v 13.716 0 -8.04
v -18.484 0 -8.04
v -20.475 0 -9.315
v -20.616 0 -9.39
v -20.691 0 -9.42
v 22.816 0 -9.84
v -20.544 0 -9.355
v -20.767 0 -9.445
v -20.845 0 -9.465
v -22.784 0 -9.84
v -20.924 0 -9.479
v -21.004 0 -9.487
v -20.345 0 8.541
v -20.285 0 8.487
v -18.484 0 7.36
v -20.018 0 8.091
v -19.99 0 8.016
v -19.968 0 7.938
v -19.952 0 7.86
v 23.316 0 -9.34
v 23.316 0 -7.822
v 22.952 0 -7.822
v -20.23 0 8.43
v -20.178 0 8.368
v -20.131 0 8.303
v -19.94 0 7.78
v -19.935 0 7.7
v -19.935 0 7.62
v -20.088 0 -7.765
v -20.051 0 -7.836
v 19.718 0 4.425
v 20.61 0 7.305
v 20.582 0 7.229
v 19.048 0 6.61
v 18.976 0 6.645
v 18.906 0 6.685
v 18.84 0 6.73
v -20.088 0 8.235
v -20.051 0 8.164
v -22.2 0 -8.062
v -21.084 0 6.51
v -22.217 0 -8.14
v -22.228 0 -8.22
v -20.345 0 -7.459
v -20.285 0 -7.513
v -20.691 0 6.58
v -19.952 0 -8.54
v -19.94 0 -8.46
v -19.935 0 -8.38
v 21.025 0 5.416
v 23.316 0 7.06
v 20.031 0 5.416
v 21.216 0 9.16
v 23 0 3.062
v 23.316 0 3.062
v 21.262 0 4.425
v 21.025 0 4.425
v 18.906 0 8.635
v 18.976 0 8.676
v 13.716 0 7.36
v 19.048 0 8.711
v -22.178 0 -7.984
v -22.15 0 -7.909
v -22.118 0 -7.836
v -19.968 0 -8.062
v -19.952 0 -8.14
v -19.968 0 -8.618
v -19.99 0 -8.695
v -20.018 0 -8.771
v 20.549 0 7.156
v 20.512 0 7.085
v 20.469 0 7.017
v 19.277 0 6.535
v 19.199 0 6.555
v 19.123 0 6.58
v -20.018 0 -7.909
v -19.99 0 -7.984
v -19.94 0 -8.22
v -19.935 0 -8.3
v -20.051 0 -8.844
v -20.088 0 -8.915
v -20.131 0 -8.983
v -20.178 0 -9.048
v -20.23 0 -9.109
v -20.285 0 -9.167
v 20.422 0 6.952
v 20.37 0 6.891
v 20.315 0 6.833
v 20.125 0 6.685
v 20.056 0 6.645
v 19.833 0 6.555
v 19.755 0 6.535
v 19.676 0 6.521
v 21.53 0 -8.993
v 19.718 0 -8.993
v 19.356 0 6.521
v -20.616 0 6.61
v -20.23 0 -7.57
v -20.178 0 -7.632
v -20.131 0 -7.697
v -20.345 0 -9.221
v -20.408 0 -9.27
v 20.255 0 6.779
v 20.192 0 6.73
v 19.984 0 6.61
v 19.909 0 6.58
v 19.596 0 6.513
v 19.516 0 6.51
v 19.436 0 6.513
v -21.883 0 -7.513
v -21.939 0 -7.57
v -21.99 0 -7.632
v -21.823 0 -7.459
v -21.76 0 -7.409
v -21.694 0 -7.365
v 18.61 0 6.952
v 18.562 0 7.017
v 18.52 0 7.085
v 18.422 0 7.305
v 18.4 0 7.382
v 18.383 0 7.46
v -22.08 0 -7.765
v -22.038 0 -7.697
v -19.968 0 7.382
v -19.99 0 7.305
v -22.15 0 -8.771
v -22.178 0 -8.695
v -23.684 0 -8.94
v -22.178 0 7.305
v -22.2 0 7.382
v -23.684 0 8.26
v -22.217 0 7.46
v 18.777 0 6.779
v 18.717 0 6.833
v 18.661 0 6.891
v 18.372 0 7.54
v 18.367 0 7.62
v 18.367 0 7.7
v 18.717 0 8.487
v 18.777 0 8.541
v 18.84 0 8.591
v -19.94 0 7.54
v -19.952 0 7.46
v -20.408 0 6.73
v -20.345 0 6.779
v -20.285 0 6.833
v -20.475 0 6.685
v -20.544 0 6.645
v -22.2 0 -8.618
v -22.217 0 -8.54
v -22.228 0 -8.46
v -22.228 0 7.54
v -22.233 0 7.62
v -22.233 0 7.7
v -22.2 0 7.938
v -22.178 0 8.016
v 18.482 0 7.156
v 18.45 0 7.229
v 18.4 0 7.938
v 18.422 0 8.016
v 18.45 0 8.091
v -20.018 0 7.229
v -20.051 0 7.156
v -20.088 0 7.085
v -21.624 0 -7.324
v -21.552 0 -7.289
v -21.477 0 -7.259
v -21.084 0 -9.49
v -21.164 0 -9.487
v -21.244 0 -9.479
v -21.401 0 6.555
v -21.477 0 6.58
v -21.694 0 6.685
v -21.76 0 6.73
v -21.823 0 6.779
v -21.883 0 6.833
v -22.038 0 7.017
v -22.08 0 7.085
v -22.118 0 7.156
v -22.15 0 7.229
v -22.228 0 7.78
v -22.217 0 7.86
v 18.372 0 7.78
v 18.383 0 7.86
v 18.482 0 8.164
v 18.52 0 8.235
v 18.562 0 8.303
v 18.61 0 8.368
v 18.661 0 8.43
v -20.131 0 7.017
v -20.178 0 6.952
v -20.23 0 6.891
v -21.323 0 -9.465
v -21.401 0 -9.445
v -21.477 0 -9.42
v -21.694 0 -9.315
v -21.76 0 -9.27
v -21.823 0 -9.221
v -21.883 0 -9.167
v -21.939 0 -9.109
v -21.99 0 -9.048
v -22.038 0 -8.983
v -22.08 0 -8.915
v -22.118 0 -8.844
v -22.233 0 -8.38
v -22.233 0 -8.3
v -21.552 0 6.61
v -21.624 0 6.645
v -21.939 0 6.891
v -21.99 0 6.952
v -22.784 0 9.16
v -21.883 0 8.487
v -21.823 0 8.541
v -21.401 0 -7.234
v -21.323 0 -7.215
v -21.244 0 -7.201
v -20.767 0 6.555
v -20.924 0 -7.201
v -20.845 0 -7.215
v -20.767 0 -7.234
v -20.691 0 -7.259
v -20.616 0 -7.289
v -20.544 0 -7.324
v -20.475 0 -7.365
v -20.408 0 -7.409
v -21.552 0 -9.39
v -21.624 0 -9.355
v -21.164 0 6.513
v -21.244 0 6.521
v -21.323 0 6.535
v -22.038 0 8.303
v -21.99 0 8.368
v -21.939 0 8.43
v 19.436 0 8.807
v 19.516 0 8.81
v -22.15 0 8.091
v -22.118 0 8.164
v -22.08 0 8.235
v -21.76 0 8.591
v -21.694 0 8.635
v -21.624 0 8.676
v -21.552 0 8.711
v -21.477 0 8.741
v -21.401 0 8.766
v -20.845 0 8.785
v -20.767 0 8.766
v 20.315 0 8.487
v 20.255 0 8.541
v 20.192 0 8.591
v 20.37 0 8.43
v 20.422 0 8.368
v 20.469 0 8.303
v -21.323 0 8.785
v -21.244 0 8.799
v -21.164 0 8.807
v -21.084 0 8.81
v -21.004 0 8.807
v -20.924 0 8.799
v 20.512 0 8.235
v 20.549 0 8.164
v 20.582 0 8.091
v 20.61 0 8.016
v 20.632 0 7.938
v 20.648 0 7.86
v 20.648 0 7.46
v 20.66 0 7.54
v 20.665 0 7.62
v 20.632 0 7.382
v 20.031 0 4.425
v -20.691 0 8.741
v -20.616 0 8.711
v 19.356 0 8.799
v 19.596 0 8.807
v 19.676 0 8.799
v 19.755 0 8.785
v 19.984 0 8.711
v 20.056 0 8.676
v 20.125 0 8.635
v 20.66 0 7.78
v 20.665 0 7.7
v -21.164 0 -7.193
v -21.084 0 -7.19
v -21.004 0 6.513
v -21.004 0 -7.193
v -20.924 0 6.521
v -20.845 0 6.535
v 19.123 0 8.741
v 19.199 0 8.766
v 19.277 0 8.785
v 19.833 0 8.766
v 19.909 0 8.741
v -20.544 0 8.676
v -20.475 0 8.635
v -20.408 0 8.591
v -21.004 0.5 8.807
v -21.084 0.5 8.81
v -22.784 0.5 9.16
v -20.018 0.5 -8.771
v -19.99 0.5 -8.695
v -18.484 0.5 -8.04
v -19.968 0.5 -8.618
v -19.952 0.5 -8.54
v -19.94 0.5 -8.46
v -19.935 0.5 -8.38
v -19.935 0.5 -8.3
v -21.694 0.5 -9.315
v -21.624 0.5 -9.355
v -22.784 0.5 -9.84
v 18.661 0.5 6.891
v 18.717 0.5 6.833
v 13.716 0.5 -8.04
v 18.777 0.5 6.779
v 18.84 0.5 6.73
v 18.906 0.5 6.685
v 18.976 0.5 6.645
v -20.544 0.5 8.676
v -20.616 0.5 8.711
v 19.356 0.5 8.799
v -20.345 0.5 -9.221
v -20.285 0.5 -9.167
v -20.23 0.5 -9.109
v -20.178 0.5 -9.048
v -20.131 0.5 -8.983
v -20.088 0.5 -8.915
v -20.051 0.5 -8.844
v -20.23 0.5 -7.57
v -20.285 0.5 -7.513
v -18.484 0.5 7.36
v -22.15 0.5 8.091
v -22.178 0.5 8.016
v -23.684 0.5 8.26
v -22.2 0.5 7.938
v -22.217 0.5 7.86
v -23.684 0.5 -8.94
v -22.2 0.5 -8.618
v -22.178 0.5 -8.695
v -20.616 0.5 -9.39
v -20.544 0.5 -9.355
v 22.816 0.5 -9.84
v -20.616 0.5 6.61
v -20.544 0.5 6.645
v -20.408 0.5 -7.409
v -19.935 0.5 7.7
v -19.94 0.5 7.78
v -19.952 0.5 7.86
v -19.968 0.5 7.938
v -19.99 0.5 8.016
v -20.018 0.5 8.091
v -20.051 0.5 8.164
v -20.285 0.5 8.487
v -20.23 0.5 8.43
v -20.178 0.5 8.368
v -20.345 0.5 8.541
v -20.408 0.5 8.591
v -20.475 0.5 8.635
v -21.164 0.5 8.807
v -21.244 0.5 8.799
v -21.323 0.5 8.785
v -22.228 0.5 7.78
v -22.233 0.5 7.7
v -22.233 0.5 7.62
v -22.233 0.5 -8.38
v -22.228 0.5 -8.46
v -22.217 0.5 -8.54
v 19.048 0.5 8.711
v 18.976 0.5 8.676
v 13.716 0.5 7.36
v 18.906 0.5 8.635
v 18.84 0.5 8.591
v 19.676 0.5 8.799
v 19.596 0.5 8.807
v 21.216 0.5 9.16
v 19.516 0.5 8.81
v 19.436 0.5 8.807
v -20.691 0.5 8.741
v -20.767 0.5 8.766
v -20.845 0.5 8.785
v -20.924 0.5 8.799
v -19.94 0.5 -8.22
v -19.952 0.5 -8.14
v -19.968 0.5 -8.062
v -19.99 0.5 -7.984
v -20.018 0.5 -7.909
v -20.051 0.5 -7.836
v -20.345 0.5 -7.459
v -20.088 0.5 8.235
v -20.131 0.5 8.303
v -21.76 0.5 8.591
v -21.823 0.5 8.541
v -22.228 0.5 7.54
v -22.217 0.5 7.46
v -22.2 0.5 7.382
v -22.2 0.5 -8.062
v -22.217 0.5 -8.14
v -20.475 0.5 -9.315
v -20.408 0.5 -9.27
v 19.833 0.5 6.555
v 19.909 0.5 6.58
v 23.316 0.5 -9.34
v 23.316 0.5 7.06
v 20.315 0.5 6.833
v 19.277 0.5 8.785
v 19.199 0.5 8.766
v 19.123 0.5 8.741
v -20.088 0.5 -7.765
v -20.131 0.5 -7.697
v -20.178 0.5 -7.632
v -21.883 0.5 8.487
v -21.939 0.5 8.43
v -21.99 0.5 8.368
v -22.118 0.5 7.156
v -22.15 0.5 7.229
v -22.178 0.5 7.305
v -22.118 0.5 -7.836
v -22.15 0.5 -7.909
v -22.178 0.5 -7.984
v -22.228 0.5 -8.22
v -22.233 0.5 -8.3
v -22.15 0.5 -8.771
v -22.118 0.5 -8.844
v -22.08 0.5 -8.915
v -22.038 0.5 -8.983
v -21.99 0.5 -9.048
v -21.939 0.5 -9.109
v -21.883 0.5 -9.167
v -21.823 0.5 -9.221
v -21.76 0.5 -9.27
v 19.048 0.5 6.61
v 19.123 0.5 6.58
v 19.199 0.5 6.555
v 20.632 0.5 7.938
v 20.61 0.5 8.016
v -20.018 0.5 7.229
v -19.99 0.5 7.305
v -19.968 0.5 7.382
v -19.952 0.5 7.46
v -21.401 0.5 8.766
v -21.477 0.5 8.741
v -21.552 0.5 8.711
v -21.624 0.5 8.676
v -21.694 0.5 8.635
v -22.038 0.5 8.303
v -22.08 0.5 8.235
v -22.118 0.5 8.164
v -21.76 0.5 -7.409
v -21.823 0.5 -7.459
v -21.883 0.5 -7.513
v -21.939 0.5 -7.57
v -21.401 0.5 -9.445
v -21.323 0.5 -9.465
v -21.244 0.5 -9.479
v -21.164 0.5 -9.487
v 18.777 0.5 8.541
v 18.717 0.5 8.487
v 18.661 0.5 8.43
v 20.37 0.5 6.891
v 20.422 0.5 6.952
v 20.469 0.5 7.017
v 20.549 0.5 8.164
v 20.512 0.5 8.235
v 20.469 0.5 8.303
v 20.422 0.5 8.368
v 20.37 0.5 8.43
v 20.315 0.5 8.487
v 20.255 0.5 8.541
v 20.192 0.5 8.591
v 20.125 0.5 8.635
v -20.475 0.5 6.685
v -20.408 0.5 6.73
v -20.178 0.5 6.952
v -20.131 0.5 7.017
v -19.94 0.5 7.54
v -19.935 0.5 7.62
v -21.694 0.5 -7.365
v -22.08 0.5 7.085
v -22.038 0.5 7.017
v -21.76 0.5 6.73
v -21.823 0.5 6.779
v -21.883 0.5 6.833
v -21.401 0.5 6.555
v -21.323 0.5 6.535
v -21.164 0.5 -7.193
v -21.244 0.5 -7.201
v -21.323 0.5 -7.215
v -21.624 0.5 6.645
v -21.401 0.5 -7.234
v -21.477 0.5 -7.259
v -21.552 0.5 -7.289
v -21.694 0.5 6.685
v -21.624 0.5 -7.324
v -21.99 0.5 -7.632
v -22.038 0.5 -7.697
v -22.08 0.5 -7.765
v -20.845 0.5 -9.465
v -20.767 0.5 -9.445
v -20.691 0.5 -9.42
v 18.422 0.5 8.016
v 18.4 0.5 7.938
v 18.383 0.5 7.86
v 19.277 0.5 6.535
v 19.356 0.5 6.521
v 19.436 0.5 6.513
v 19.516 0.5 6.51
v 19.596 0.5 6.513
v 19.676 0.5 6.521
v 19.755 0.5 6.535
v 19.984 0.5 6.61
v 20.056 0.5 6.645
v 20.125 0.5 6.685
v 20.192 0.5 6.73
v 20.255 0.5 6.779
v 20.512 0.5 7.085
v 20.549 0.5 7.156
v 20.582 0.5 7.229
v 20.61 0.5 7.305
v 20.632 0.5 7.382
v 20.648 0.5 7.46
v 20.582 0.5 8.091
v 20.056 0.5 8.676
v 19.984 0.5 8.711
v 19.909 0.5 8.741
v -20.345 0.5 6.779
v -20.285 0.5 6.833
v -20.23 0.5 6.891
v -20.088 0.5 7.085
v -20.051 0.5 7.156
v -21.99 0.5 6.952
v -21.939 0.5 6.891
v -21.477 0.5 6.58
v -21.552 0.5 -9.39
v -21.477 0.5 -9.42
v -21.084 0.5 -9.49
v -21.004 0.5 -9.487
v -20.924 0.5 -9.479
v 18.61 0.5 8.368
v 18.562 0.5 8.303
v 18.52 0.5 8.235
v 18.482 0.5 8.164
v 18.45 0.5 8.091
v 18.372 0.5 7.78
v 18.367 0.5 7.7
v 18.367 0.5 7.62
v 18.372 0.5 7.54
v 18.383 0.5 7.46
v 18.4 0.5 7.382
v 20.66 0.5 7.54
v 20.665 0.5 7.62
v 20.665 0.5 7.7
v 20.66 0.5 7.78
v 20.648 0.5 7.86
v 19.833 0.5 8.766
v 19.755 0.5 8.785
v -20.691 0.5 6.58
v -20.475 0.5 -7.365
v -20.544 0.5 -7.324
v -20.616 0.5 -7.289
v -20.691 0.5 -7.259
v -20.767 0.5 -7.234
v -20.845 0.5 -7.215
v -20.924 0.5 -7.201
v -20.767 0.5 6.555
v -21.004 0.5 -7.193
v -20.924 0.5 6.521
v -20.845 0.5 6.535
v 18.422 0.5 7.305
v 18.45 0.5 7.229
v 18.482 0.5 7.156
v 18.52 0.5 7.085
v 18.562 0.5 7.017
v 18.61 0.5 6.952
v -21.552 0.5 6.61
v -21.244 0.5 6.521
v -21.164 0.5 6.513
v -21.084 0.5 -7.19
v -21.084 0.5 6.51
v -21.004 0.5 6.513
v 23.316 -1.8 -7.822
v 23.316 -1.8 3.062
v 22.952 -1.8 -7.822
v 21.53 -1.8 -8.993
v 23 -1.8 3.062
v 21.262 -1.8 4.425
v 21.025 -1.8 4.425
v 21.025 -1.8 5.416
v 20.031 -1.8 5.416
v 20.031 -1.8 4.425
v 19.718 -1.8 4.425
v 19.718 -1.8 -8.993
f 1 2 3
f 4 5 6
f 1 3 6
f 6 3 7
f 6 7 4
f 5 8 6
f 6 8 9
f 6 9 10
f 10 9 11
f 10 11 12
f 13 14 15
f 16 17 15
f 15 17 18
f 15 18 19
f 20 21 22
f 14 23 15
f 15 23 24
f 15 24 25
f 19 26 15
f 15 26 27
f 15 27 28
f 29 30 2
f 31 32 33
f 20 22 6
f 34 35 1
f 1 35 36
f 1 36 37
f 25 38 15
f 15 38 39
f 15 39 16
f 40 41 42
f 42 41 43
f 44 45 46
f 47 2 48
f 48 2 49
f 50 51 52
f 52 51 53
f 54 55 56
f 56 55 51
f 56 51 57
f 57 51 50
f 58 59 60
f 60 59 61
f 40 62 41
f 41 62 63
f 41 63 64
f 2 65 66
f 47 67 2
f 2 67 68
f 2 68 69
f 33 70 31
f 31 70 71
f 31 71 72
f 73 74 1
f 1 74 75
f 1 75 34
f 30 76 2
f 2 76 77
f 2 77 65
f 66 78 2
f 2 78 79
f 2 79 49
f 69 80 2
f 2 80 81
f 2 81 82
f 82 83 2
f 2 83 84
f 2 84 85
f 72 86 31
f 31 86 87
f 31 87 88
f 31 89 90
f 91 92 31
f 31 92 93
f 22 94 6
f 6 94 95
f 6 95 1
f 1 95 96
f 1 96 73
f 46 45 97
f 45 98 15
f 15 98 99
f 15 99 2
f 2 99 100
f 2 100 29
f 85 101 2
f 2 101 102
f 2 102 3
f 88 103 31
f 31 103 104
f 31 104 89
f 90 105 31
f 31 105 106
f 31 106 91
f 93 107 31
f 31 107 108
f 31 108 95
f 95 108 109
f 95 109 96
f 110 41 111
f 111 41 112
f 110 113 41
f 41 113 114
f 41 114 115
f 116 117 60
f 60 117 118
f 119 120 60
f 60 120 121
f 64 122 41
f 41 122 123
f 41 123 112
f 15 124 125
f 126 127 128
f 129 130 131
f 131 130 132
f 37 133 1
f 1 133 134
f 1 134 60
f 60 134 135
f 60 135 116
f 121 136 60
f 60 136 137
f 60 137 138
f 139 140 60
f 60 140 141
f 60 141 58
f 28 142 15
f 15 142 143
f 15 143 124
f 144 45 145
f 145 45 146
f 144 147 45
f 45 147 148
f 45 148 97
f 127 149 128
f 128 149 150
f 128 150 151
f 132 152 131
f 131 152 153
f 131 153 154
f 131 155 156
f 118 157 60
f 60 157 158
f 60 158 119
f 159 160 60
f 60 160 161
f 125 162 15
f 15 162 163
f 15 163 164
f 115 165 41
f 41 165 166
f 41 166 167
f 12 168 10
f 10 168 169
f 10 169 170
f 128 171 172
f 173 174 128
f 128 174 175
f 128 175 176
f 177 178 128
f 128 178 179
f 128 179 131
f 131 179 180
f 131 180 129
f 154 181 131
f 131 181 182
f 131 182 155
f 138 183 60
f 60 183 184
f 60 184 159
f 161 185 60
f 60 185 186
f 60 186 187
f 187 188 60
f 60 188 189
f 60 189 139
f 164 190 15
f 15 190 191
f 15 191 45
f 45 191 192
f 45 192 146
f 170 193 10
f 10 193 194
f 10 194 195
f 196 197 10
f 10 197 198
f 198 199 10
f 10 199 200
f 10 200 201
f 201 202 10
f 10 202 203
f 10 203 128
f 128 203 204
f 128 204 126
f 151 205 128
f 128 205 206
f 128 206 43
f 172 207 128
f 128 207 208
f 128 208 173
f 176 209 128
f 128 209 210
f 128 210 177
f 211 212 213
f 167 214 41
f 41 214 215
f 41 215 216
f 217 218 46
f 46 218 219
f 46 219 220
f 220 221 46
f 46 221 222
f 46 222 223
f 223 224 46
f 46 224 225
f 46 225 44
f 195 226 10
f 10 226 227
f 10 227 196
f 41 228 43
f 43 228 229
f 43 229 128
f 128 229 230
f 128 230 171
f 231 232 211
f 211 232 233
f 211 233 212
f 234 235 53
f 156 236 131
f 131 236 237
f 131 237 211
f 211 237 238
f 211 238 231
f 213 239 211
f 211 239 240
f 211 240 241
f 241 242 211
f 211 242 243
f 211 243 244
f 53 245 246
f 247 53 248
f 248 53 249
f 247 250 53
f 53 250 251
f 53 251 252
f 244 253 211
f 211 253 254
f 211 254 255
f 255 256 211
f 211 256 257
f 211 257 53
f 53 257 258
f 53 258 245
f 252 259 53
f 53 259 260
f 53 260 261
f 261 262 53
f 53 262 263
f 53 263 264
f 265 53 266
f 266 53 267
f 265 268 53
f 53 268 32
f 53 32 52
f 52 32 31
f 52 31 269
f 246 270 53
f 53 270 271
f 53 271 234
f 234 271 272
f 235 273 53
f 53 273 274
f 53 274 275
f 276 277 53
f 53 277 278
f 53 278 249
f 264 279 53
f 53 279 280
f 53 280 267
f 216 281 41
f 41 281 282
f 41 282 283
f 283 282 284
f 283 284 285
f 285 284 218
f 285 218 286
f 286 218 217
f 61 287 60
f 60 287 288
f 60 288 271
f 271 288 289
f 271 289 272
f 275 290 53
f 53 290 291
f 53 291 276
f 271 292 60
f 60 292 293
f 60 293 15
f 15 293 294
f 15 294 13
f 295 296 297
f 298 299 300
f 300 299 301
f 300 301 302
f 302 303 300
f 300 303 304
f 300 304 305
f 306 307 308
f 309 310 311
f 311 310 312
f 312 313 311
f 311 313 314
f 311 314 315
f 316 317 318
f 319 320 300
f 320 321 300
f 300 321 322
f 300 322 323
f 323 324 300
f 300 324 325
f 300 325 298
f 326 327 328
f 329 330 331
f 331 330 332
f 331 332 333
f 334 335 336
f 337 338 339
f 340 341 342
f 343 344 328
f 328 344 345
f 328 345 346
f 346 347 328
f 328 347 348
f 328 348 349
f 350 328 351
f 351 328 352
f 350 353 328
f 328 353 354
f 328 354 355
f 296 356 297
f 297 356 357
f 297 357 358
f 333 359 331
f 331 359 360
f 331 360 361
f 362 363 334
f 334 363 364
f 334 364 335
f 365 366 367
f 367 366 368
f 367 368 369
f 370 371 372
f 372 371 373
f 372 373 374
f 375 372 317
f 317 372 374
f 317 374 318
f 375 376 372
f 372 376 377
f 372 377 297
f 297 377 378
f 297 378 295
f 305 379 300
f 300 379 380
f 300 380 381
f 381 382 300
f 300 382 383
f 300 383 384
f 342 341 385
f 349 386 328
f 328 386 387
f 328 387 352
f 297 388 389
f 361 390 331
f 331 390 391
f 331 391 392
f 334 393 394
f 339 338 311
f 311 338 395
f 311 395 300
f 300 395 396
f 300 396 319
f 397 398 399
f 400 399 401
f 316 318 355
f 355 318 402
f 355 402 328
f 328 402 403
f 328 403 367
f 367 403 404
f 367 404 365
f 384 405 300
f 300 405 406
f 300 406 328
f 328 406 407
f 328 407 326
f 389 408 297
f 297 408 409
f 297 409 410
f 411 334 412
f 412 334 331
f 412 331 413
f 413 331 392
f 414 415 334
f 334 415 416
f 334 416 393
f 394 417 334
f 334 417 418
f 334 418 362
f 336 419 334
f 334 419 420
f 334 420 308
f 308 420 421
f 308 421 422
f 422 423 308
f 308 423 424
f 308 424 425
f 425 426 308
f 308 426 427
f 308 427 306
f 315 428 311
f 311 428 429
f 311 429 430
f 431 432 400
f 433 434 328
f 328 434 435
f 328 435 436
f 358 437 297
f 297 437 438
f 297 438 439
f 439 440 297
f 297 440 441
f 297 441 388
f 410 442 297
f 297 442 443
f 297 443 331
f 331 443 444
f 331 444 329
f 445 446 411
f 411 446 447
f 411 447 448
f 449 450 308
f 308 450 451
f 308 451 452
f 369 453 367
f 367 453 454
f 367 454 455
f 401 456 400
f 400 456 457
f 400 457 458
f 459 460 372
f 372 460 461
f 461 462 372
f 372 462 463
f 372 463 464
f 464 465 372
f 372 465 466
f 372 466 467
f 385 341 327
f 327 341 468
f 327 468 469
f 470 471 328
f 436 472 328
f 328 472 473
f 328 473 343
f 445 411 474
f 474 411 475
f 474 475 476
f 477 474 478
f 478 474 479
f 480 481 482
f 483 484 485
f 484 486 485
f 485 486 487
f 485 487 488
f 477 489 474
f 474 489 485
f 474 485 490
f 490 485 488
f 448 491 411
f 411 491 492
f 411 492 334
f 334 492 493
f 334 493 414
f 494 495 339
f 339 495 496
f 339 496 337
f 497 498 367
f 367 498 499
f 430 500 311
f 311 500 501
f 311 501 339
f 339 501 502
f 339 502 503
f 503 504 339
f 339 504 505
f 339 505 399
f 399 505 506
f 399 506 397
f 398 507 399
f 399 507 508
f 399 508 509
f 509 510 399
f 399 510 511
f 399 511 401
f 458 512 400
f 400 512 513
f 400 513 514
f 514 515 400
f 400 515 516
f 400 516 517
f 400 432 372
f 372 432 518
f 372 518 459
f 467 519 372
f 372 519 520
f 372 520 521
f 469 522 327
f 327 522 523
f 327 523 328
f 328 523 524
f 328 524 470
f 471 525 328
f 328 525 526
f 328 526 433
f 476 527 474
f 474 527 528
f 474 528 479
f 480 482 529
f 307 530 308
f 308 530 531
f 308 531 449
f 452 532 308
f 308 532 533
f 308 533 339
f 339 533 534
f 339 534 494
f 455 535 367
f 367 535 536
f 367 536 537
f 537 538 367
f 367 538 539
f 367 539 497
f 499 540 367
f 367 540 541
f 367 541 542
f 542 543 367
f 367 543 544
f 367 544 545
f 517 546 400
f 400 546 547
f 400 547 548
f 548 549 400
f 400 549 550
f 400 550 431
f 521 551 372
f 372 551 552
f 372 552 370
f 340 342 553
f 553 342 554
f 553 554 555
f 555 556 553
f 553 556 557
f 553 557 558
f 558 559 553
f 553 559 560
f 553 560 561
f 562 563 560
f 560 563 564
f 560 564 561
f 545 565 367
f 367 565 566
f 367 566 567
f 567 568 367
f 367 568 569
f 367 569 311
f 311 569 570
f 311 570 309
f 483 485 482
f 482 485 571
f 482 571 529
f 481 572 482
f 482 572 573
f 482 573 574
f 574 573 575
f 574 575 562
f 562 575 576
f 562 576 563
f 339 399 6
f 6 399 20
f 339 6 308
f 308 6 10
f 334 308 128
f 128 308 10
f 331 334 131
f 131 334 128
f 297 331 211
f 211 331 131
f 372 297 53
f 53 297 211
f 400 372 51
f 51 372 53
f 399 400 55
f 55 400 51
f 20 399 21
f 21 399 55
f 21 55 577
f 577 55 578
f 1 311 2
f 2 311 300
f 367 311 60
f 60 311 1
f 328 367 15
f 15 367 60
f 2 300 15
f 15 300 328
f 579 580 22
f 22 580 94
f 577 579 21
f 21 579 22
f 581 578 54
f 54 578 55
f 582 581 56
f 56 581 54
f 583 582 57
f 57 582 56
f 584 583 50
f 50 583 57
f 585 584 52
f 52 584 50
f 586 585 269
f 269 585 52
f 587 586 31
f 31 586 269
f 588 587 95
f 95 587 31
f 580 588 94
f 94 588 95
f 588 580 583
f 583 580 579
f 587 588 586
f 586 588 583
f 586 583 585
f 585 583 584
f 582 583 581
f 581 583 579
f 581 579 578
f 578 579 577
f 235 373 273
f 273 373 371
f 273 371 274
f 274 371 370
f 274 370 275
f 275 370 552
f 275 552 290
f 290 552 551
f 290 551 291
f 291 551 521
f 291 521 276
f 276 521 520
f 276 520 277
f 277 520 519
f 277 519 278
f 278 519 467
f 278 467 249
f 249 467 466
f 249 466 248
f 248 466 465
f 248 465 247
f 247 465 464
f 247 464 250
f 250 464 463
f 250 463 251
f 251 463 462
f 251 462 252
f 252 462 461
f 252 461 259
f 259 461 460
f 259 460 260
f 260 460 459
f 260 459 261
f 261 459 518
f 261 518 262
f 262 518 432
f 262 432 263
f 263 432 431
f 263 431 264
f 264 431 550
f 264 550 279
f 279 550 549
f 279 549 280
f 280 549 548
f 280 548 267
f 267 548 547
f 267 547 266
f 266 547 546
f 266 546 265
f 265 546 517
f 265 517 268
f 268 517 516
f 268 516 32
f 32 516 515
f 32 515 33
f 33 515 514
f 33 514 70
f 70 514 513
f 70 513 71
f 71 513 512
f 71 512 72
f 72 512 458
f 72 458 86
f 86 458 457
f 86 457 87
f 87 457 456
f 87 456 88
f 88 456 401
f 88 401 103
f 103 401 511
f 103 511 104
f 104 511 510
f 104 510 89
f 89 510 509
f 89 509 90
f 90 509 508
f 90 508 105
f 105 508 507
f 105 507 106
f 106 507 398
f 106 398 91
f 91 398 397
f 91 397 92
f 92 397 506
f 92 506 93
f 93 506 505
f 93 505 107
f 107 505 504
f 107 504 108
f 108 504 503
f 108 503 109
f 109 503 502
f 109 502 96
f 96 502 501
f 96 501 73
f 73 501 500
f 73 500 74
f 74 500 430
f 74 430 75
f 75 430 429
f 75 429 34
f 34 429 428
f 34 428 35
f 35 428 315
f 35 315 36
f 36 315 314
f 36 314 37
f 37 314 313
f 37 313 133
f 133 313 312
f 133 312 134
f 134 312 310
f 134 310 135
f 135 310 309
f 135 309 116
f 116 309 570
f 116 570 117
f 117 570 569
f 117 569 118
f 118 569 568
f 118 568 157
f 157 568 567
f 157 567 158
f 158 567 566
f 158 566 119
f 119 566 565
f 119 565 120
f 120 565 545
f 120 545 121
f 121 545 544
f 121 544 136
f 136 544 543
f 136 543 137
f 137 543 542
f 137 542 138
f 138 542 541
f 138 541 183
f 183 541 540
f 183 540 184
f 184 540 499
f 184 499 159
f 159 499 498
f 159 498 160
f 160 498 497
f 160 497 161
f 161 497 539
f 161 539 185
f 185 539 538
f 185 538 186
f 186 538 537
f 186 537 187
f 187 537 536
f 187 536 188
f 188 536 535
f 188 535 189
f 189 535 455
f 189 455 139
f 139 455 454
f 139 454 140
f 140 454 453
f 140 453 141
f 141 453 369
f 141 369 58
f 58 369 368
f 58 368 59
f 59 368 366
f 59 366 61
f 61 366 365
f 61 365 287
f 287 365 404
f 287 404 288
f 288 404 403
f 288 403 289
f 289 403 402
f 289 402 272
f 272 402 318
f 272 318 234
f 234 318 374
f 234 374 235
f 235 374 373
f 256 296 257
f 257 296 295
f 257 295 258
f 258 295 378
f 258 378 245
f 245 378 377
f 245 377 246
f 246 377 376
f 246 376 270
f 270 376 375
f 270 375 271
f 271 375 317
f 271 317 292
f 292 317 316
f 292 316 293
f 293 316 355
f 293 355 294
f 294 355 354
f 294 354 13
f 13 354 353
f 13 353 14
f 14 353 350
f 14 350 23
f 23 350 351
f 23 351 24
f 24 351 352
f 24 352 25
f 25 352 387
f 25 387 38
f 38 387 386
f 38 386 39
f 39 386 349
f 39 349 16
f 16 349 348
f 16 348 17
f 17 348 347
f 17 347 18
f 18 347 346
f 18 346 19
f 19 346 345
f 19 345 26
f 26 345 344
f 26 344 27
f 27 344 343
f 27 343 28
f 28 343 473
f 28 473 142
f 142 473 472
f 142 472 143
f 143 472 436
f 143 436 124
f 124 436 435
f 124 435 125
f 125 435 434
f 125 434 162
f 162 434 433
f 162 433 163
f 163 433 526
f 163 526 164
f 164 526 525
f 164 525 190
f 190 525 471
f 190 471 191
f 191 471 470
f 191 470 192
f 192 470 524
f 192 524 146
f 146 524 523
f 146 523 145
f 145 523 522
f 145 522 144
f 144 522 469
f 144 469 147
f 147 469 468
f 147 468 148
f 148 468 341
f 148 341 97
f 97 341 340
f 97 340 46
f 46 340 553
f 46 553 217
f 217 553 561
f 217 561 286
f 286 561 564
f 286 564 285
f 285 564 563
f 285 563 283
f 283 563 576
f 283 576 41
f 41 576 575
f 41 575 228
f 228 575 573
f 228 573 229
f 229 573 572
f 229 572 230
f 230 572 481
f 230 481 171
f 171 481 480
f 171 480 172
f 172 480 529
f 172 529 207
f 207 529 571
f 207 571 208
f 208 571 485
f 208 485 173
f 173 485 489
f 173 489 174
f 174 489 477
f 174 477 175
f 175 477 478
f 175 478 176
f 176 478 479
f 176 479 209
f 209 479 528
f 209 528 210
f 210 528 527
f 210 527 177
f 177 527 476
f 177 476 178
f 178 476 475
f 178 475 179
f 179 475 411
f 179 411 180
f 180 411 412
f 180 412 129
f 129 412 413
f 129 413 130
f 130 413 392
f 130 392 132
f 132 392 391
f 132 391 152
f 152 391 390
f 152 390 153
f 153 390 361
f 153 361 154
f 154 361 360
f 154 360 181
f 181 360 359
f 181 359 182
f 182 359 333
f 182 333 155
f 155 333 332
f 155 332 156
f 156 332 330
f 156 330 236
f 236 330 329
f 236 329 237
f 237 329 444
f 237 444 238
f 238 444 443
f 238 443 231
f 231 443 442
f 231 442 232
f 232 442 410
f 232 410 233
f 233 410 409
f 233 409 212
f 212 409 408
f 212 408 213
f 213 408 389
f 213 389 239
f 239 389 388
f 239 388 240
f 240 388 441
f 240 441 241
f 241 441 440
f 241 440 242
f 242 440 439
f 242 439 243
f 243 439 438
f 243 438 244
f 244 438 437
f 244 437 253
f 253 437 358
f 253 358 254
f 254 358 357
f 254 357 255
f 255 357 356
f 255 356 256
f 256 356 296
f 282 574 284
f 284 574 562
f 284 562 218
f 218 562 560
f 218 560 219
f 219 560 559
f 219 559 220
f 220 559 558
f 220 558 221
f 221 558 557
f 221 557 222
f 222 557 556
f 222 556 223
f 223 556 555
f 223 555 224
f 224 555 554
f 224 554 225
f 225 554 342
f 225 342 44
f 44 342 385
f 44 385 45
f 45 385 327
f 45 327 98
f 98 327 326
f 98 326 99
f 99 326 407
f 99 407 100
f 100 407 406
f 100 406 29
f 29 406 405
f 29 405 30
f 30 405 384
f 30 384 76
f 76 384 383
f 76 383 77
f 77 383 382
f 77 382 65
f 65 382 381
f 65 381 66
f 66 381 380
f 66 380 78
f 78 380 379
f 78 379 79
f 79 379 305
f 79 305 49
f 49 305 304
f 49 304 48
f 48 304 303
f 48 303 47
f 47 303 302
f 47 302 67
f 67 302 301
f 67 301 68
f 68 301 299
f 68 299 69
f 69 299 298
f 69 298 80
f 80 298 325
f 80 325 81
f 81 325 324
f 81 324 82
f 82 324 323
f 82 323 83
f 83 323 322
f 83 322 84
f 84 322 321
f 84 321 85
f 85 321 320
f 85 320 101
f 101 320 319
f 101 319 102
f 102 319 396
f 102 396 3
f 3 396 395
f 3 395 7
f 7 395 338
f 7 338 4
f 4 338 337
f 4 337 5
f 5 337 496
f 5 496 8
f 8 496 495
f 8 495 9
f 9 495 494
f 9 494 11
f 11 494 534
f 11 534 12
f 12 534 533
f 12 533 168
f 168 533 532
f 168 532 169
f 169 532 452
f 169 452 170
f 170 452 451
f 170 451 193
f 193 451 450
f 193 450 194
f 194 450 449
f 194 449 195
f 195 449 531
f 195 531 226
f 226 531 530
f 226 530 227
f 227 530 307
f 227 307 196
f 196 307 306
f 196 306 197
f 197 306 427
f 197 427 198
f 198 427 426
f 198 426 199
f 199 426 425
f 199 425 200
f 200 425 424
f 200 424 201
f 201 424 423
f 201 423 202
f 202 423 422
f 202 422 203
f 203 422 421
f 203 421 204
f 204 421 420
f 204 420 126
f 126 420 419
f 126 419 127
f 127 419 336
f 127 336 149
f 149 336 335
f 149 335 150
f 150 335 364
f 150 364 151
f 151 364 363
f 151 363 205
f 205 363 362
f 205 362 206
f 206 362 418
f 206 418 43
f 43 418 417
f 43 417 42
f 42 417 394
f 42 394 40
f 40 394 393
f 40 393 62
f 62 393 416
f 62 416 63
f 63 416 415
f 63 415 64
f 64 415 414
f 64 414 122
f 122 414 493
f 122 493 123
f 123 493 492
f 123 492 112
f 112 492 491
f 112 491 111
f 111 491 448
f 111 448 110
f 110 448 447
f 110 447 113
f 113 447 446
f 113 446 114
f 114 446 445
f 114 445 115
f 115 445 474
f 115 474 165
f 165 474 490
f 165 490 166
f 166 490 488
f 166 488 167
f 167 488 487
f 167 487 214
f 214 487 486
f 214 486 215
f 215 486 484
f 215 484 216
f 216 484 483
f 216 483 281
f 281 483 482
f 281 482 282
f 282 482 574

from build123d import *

# Parameters (mm, degrees)
EXTRUDE_1_DEPTH     = 0.5
EXTRUDE_2_DEPTH     = 0.5
SKETCH_3_W          = 32.2
SKETCH_3_H          = 15.4
EXTRUDE_3_DEPTH     = 0.5
EXTRUDE_4_DEPTH     = 1.8
SKETCH_7_R          = 1.15
CUT_EXTRUDE_1_DEPTH = 10


with BuildPart() as part:
    # Эскиз1 → Бобышка-Вытянуть1 (new body)
    with BuildSketch(Plane(origin=(0, 0, 0), x_dir=(1, 0, 0), z_dir=(0, 1, 0))):
        with BuildLine():
            Line((22.815864902, 9.839807024), (-22.784135098, 9.839807024))
            Line((-22.784135098, 9.839807024), (-23.684135098, 8.939807024))
            Line((-23.684135098, 8.939807024), (-23.684135098, -8.260192976))
            Line((-23.684135098, -8.260192976), (-22.784135098, -9.160192976))
            Line((-22.784135098, -9.160192976), (21.215864902, -9.160192976))
            Line((21.215864902, -9.160192976), (23.315864902, -7.060192976))
            Line((23.315864902, -7.060192976), (23.315864902, -3.260192976))
            Line((23.315864902, -3.260192976), (23.029007645, -3.260192976))
            ThreePointArc((23.029007645, -3.260192976), (22.159773793, -4.027024735), (21.188848248, -4.660192976))
            Line((21.188848248, -4.660192976), (21.188848248, -5.660192976))
            Line((21.188848248, -5.660192976), (19.888848248, -5.660192976))
            Line((19.888848248, -5.660192976), (19.888848248, -4.660192976))
            Line((19.888848248, -4.660192976), (17.315864902, -4.660192976))
            Line((17.315864902, -4.660192976), (17.315864902, -8.360192976))
            Line((17.315864902, -8.360192976), (-18.884135098, -8.360192976))
            Line((-18.884135098, -8.360192976), (-18.884135098, -6.660192976))
            Line((-18.884135098, -6.660192976), (-19.684135098, -5.860192976))
            Line((-19.684135098, -5.860192976), (-19.684135098, 6.539807024))
            Line((-19.684135098, 6.539807024), (-18.884135098, 7.339807024))
            Line((-18.884135098, 7.339807024), (-18.884135098, 9.039807024))
            Line((-18.884135098, 9.039807024), (17.315864902, 9.039807024))
            Line((17.315864902, 9.039807024), (17.315864902, 8.539807024))
            ThreePointArc((17.315864902, 8.539807024), (18.329503431, 8.456385882), (19.315864902, 8.208367324))
            Line((19.315864902, 8.208367324), (19.315864902, 9.139807024))
            Line((19.315864902, 9.139807024), (21.530126403, 9.139807024))
            ThreePointArc((21.530126403, 9.139807024), (22.315698775, 8.584938027), (23.029007645, 7.939807024))
            Line((23.029007645, 7.939807024), (23.315864902, 7.939807024))
            Line((23.315864902, 7.939807024), (23.315864902, 9.339807024))
            Line((23.315864902, 9.339807024), (22.815864902, 9.839807024))
        make_face()
        with BuildLine():
            ThreePointArc((18.565864902, -7.660192976), (19.515864902, -8.610192976), (20.465864902, -7.660192976))
            ThreePointArc((20.465864902, -7.660192976), (19.515864902, -6.710192976), (18.565864902, -7.660192976))
        make_face(mode=Mode.SUBTRACT)
        with BuildLine():
            ThreePointArc((-22.034135098, -7.660192976), (-21.084135098, -8.610192976), (-20.134135098, -7.660192976))
            ThreePointArc((-20.134135098, -7.660192976), (-21.084135098, -6.710192976), (-22.034135098, -7.660192976))
        make_face(mode=Mode.SUBTRACT)
        with BuildLine():
            ThreePointArc((-22.034135098, 8.339807024), (-21.084135098, 7.389807024), (-20.134135098, 8.339807024))
            ThreePointArc((-20.134135098, 8.339807024), (-21.084135098, 9.289807024), (-22.034135098, 8.339807024))
        make_face(mode=Mode.SUBTRACT)
    extrude(amount=EXTRUDE_1_DEPTH)

    # Эскиз2 → Бобышка-Вытянуть2 (add)
    with BuildSketch(Plane(origin=(0, 0, 0), x_dir=(-1, 0, 0), z_dir=(0, -1, 0))):
        Polygon((-17.315864902, -4.660192976), (-17.315864902, 9.839807024), (-22.815864902, 9.839807024), (-23.315864902, 9.339807024), (-23.315864902, -7.060192976), (-21.188848248, -5.660192976), (-17.315864902, -5.660192976), align=None)
    extrude(amount=-EXTRUDE_2_DEPTH)

    # Эскиз3 → Бобышка-Вытянуть3 (add)
    with BuildSketch(Plane(origin=(0, 0, 0), x_dir=(-1, 0, 0), z_dir=(0, -1, 0))):
        Polygon((18.884135098, -8.360192976), (18.884135098, -7.760192976), (19.728041262, -7.760192976), (19.728041262, 8.039807024), (18.884135098, 8.039807024), (18.884135098, 9.039807024), (-17.315864902, 9.039807024), (-17.315864902, -8.360192976), align=None)
        with Locations((2.384135098, 0.339807024)):
            Rectangle(SKETCH_3_W, SKETCH_3_H, mode=Mode.SUBTRACT)
    extrude(amount=-EXTRUDE_3_DEPTH)

    # Эскиз6 → Бобышка-Вытянуть4 (add)
    with BuildSketch(Plane(origin=(0, 0, 0), x_dir=(1, 0, 0), z_dir=(0, 1, 0))):
        Polygon((23.315864902, 7.821832851), (23.315864902, -3.062056468), (22.999687869, -3.062056468), (21.261580991, -4.424599137), (21.024758243, -4.424599137), (21.024758243, -5.416287347), (20.030773613, -5.416287347), (20.030773613, -4.424599137), (19.718020582, -4.424599137), (19.718020582, 8.99333189), (21.530126403, 8.99333189), (22.952461546, 7.821832851), align=None)
    extrude(amount=-EXTRUDE_4_DEPTH)

    # Эскиз7 → Вырез-Вытянуть1 (cut)
    with BuildSketch(Plane(origin=(0, 0.5, 0), x_dir=(1, 0, 0), z_dir=(0, 1, 0))):
        with Locations(Location((-21.084135098, 8.339807024, 0), (0, 0, 270))):
            Circle(SKETCH_7_R)
        with Locations(Location((-21.084135098, -7.660192976, 0), (0, 0, 270))):
            Circle(SKETCH_7_R)
        with Locations(Location((19.515864902, -7.660192976, 0), (0, 0, 270))):
            Circle(SKETCH_7_R)
    extrude(amount=-CUT_EXTRUDE_1_DEPTH, mode=Mode.SUBTRACT)


solid = part.part
